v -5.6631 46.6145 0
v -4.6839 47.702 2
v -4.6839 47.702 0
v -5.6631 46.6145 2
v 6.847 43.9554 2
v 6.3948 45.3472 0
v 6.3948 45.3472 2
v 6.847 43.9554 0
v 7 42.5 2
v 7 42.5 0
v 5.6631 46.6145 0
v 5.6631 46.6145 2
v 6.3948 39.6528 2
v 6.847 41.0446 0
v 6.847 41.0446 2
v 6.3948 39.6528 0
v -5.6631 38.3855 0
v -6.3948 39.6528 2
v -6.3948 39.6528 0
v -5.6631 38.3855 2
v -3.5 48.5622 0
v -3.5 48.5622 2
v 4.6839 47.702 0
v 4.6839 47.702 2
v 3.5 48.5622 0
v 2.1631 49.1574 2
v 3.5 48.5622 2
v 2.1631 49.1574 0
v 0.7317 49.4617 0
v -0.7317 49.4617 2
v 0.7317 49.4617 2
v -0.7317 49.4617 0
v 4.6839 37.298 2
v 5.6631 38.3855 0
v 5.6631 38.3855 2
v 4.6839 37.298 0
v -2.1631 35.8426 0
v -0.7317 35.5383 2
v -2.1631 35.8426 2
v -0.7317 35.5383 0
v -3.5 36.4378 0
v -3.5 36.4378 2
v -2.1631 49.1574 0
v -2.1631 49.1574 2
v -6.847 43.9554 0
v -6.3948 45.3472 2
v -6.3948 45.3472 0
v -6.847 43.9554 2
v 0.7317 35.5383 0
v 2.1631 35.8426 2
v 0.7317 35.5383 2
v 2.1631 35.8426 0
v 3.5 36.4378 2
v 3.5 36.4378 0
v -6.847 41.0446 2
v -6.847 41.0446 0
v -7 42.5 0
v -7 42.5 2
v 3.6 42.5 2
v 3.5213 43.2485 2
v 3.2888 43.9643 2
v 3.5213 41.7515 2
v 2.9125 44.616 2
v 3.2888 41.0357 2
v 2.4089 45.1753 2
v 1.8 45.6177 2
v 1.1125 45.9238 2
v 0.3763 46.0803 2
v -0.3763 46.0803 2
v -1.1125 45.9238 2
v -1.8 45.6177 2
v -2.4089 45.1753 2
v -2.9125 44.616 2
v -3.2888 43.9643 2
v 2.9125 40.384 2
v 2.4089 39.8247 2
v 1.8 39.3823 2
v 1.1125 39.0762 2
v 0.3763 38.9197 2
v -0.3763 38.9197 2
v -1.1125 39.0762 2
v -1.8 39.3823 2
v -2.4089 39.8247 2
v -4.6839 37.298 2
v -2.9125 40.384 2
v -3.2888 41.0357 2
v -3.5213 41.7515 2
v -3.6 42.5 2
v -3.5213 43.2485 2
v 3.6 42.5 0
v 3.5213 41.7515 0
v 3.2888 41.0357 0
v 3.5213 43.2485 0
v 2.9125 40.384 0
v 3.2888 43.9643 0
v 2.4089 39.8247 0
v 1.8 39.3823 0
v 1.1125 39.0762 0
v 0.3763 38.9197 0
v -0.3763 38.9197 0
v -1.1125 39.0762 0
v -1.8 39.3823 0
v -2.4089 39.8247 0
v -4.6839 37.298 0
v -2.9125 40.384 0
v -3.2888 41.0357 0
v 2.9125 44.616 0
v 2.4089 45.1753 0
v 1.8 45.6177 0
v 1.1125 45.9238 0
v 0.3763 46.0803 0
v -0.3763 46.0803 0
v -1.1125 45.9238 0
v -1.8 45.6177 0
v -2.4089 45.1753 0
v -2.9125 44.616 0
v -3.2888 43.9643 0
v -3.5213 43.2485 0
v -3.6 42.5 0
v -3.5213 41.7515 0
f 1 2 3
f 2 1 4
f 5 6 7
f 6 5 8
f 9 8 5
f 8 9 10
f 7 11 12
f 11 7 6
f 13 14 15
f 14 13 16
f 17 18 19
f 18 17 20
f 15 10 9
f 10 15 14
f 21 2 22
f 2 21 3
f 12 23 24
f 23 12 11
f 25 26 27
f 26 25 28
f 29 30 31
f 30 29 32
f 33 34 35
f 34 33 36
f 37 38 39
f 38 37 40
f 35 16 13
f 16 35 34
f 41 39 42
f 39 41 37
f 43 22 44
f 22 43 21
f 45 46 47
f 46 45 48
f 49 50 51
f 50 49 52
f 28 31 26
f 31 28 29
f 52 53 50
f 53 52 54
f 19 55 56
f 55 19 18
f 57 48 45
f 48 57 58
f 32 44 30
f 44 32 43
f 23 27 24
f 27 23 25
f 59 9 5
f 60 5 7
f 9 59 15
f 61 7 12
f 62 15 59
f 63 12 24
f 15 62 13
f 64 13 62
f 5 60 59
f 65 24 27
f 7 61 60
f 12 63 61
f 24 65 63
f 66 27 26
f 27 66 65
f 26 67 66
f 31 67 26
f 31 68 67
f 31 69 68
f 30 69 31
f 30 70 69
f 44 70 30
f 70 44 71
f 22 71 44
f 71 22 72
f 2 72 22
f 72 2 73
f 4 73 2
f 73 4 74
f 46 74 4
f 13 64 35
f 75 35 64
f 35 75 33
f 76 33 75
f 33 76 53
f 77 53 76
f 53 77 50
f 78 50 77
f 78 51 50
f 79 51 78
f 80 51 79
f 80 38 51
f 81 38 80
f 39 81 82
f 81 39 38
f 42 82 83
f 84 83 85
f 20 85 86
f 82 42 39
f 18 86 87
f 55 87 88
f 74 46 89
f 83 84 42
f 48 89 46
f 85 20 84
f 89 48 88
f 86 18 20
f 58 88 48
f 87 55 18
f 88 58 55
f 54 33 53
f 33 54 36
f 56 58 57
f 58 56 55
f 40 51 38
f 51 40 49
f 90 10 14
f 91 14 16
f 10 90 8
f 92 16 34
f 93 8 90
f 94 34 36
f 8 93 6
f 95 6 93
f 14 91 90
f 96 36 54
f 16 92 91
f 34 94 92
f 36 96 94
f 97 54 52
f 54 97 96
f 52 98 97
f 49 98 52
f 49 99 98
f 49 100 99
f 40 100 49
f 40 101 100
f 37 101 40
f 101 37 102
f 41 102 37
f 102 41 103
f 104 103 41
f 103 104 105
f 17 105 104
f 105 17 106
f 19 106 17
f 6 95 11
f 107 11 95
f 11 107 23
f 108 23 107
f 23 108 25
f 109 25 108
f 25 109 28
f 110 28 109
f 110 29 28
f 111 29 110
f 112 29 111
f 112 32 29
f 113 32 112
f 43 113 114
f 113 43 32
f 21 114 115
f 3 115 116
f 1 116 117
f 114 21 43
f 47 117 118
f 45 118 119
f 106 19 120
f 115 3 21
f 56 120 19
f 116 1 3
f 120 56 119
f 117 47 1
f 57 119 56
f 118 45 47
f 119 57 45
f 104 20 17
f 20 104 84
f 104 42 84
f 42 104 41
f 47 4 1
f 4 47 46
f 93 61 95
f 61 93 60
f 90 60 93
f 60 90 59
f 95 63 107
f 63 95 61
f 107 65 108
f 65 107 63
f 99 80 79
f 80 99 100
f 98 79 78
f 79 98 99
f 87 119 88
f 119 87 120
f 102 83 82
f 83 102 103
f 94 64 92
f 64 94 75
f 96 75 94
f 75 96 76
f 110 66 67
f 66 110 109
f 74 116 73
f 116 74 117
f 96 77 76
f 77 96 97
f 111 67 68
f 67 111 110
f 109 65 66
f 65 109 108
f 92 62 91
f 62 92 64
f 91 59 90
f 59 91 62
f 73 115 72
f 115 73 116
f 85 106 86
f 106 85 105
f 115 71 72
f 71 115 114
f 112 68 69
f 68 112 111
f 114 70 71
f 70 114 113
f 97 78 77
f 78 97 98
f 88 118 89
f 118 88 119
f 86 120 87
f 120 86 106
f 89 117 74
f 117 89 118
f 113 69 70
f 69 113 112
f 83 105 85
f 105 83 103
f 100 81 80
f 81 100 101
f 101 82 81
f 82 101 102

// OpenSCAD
/*   	Parametric airless tire
		by Travis Howse <tjhowse@gmail.com>
		2012.   License, GPL v2 or later
**************************************************/
// https://www.thingiverse.com/thing:17514/files
dia_in = 1;
dia_out = 55;// Default 40
spoke_count = 6; // Default 4
spoke_thickness = 0.5; //Default 0.5
tread_thickness = 0.5; //Default 0.5
hub_thickness = 7;
height = 10;
$fn = 30;
spoke_dia = (dia_in/2) + hub_thickness + (dia_out/2) - tread_thickness+spoke_thickness;
grip_density = 0.05;//0.05; // Set to 0 for no grip.
grip_height = 1.;
grip_depth = 3;
pi = 3.14159;
zff = 0.001;
print_wheel = false;
print_washer = true;

//Set to 1 for a double spiral.
// Note: single-wall spokes probably won't work with double spirals, as the
// first layer of the upper spiral would bridge in a straight line, rather
// than a curve. Successive layers probably wouldn't recover.
double_spiral = 0;

module wheel()
{
	difference()
	{
		cylinder(r=dia_out/2,h=height);
		cylinder(r=(dia_out/2)-tread_thickness,h=height);	
	}

	difference()
	{
		cylinder(r=(dia_in/2)+hub_thickness,h=height);
		cylinder(r=dia_in/2,h=height);	
	}

	for (i = [0:spoke_count-1])
	{
		if (double_spiral)
		{
			rotate([0,0,i * (360/spoke_count)]) translate([(spoke_dia/2)-(dia_in/2)-hub_thickness,0,(height/2)+zff]) spoke();
			rotate([180,0,i * (360/spoke_count)]) translate([(spoke_dia/2)-(dia_in/2)-hub_thickness,0,-height/2]) spoke();			
		} else {
			rotate([0,0,i * (360/spoke_count)]) translate([(spoke_dia/2)-(dia_in/2)-hub_thickness,0,0]) spoke();
		}
	}
	
	if (grip_density != 0)
	{
		for (i = [0:(360*grip_density)])
		{
			rotate([0,0,i*(360/(360*grip_density))]) translate([dia_out/2-grip_height/2,0,0]) cube([grip_height,grip_depth,height]);
		}
	}
}

module spoke()
{
	intersection()
	{
		difference()
		{
			cylinder(r=spoke_dia/2,h=height);
			cylinder(r=(spoke_dia/2)-spoke_thickness,h=height);	
		}
		if (double_spiral)
		{
			translate([-spoke_dia/2,-spoke_dia,0]) cube([spoke_dia,spoke_dia,height/2]);
		} else {
			translate([-spoke_dia/2,-spoke_dia,0]) cube([spoke_dia,spoke_dia,height]);
		}
	}
}

if (print_wheel) {
    mirror([0,0,1]) {
        translate([0,0,-height]) {
            difference() {
                wheel();
                
                // Center of the wheel
                cylinder(h=height, r1=3.6, r2=3.6, center=false);
                cylinder(h=height - 3.2, r=5.15, center=false);
            }
        }
    }
    
}

//Washer
if (print_washer) {
    translate([0,dia_out/2 + 15,0]) {
        
        difference() {
            // Center of the wheel
            cylinder(h=2, r1=hub_thickness, r2=hub_thickness, center=false);
            cylinder(h=2, r=3.6, center=false);
        }

    }    
}
